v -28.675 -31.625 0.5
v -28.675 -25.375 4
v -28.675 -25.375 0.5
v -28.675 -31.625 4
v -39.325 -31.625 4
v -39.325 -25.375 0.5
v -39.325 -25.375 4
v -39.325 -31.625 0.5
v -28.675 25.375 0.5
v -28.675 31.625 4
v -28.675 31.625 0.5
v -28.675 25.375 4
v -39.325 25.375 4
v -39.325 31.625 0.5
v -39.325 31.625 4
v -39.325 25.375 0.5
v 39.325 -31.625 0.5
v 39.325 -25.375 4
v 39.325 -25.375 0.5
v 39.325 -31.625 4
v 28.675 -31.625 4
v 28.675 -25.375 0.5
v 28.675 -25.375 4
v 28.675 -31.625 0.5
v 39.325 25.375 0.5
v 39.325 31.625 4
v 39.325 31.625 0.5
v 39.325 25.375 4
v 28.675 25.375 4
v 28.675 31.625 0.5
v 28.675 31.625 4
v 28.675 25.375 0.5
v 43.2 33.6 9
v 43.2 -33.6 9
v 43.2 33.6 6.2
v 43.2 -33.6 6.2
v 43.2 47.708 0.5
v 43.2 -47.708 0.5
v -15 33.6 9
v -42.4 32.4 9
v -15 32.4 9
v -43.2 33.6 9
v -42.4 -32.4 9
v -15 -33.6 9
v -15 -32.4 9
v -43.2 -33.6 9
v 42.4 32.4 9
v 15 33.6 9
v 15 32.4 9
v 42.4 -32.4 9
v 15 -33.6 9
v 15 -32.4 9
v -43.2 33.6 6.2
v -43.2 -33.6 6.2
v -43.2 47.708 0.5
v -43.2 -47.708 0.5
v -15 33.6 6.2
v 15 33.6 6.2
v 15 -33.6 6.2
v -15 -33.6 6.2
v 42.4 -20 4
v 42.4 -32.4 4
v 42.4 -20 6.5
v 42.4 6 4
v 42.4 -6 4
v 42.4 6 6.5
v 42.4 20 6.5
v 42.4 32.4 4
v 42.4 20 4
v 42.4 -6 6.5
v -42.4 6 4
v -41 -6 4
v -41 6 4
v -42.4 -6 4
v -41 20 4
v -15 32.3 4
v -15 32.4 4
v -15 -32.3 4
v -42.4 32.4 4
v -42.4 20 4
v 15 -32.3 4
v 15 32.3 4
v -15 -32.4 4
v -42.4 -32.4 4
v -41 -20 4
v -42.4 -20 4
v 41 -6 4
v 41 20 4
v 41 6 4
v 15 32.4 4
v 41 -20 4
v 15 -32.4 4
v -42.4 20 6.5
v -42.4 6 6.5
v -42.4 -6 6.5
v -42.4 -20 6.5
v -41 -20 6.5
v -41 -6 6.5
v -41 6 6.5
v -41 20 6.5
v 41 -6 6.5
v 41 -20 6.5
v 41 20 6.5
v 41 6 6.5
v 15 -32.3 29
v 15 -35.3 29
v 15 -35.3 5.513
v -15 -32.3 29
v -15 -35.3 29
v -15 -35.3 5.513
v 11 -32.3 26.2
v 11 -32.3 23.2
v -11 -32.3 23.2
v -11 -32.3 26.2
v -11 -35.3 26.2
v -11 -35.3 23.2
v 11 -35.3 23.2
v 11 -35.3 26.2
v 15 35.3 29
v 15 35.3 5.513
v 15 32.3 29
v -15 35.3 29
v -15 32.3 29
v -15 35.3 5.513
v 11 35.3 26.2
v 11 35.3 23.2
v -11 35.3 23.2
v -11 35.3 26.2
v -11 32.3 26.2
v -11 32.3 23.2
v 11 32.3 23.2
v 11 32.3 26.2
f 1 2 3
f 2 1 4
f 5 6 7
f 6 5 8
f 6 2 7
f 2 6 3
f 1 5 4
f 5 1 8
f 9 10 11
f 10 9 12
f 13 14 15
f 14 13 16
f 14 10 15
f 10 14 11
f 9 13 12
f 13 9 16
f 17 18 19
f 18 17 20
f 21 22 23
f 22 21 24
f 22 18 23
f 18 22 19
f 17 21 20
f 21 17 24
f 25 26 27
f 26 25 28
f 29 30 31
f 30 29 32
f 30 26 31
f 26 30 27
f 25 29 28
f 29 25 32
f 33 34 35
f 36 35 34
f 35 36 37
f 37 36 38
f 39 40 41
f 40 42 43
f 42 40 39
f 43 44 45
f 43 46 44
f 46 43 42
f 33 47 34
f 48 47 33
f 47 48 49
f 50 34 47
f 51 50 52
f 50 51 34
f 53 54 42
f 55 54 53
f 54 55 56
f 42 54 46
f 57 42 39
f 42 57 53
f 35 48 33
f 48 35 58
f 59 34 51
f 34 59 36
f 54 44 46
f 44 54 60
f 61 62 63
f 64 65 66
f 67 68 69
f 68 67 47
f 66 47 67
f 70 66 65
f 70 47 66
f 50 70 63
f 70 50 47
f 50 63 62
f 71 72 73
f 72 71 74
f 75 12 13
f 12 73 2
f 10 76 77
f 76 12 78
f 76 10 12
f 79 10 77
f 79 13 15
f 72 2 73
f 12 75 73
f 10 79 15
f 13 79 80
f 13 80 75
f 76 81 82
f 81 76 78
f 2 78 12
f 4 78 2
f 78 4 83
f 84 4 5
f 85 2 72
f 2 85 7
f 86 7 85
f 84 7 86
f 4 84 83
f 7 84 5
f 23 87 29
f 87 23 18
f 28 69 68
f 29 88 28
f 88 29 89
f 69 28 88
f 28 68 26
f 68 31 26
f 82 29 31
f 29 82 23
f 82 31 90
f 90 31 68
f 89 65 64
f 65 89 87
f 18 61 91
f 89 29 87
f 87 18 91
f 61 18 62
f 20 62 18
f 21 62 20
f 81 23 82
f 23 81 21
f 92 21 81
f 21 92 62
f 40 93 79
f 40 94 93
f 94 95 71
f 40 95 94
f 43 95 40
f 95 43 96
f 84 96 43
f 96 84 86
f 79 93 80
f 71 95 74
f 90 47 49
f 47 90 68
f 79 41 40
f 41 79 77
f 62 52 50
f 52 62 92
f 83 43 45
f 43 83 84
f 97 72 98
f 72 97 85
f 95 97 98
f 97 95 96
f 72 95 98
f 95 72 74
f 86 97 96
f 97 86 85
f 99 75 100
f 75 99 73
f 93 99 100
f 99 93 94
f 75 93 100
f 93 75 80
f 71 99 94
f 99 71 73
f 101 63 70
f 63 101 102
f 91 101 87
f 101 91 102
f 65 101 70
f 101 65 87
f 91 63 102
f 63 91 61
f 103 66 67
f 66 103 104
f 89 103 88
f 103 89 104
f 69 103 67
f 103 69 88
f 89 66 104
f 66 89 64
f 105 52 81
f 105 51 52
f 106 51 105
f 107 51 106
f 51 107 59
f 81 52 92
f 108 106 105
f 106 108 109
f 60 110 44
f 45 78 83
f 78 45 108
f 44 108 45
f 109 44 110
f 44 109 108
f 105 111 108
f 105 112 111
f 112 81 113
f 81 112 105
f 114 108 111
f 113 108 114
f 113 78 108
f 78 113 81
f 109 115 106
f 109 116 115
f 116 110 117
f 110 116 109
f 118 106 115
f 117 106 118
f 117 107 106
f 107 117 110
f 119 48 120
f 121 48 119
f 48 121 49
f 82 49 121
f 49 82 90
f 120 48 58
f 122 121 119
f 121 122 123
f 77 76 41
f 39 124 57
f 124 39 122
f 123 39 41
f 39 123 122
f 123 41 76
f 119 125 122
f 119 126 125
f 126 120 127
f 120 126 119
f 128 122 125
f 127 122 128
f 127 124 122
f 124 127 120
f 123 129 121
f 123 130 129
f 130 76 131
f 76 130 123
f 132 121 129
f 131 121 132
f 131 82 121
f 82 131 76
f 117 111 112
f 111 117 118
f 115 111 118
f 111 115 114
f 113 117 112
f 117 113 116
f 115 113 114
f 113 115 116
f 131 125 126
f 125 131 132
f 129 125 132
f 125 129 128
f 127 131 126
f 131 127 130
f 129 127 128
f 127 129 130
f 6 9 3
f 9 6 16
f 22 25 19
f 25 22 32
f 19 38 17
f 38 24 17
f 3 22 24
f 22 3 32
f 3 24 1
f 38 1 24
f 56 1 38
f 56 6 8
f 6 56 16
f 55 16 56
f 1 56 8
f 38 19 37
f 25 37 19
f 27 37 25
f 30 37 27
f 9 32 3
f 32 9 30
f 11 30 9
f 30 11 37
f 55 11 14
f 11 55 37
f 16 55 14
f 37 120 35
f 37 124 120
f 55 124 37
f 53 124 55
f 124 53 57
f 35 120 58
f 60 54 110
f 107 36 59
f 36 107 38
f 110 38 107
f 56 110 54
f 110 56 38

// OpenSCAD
// file: soporte_tof.scad
vista = "pieza";

tof_largo = 25;
tof_cuerpo_largo = 16;
tof_ancho = 10.5;
tof_espesor = 5.5;
tof_pcb = 1.6;
tof_oreja_largo = (tof_largo - tof_cuerpo_largo) / 2;
tof_oreja_ancho = 6;
tof_oreja_alto = 6;
tof_sensor_largo = 5;
tof_sensor_ancho = 4;
tof_sensor_alto = 1.1;
tof_sensor_desde_borde = 6;
tof_oreja_tornillo_d = 2.2;

hueco_x = 10.5;
hueco_y = 5.7;
grosor_tapa = 2;
z_tapa_sup = 46.9;
tapa_ancho = 86.4;
tapa_largo = 67.2;
tapa_z0 = 40.15;

hol = 0.25;
pared_s = 0.8;
base_s = 1.6;
base_centro_largo = 16;
poste_ancho = 4.4;
poste_prof = 4;
tornillo_d = 2.2;
piloto_d = 1.7;
boss_d = 5.4;
boss_h = grosor_tapa;
cable_d = 3.4;

x_huecos = [-33, -6, 21];
y_frente = 27.89;
y_atras = -15.67;

// [x_hueco, y_hueco, dx, rumbo]: 0 = mira a +y, positivo = gira a la izquierda
// orden: AI, AC, AD, BI, BC, BD (cada cara es la otra girada 180 grados)
psi = 20;
soportes = [
	[x_huecos[0], y_frente, 0, psi],
	[x_huecos[1], y_frente, 0, 0],
	[x_huecos[2], y_frente, 0, -psi],
	[x_huecos[2], y_atras, 0, 180 + psi],
	[x_huecos[1], y_atras, 0, 180],
	[x_huecos[0], y_atras, 0, 180 - psi]
];

module tof_modelo() {
	x0 = (tof_largo - tof_cuerpo_largo) / 2;
	color([0.1, 0.35, 0.6]) {
		translate([x0, 0, 0])
			cube([tof_cuerpo_largo, tof_ancho, tof_pcb]);
		for (sx = [0, 1])
			difference() {
				translate([sx ? x0 + tof_cuerpo_largo : 0, (tof_ancho - tof_oreja_ancho) / 2, 0])
					cube([tof_oreja_largo, tof_oreja_ancho, tof_pcb]);
				translate([sx ? tof_largo - tof_oreja_largo / 2 : tof_oreja_largo / 2, tof_ancho / 2, -1])
					cylinder(d=tof_oreja_tornillo_d, h=tof_pcb + 2, $fn=24);
			}
	}
	color([0.15, 0.15, 0.15])
		translate([x0 + tof_sensor_desde_borde, (tof_ancho - tof_sensor_ancho) / 2, tof_pcb])
			cube([tof_sensor_largo, tof_sensor_ancho, tof_espesor - tof_pcb]);
}

module tof_en_pie() {
	rotate([90, 0, 180])
		translate([-tof_largo / 2, -tof_ancho / 2, -tof_espesor / 2])
			tof_modelo();
}

module soporte_tof(fijo = false) {
	T = tof_espesor + hol;
	y_poste = -T / 2;
	x_oreja = tof_cuerpo_largo / 2 + tof_oreja_largo / 2;
	z_tornillo = base_s + tof_ancho / 2;
	alto_poste = z_tornillo + poste_ancho / 2;
	x_poste = x_oreja + poste_ancho / 2;
	z_ini = fijo ? -0.1 : 0;

	difference() {
		union() {
			translate([-base_centro_largo / 2, y_poste, z_ini])
				cube([base_centro_largo, T, base_s - z_ini]);
			translate([-x_poste, y_poste - poste_prof, z_ini])
				cube([2 * x_poste, poste_prof, base_s - z_ini]);
			for (sx = [-1, 1])
				translate([sx * x_oreja - poste_ancho / 2, y_poste - poste_prof, 0])
					cube([poste_ancho, poste_prof, alto_poste]);
			if (!fijo)
				translate([0, 0, -boss_h])
					cylinder(d=boss_d, h=boss_h + base_s, $fn=48);
		}
		if (!fijo)
			translate([0, 0, -boss_h - 1])
				cylinder(d=cable_d, h=boss_h + base_s + 2, $fn=32);
		translate([-6, y_poste - 0.1, base_s - 0.8])
			cube([12, 3, 1]);
		for (sx = [-1, 1])
			translate([sx * x_oreja, y_poste + 1, z_tornillo])
				rotate([90, 0, 0])
					cylinder(d=piloto_d, h=poste_prof - 0.6 + 1, $fn=24);
	}
}

module soporte_colocado(s, fijo = false) {
	translate([s[0] + s[2], s[1], z_tapa_sup])
		rotate([0, 0, s[3]])
			soporte_tof(fijo);
}

module tof_colocado(s) {
	translate([s[0] + s[2], s[1], z_tapa_sup + base_s + tof_ancho / 2])
		rotate([0, 0, s[3]])
			tof_en_pie();
}

if (is_undef(ensamble) && vista == "pieza")
	soporte_tof(false);
// file: soporte_tof_2.scad
include <soporte_tof.scad>

vista = "ada_pieza";

ada_largo = 25.4;
ada_alto = 17.8;
ada_pcb = 1.6;
ada_comp = 2.9;
ada_agujero_d = 2.5;
ada_agujero_dx = 20.32;
ada_agujero_dz = 12.7;
ada_chip_x = 0;
ada_chip_z = 8.9;
ada_chip_ancho = 2.5;
ada_chip_alto = 4.9;
ada_chip_espesor = 1.56;
ada_conector_largo = 4.25;
ada_conector_alto = 6.9;
ada_piloto_d = 2.1;
ada_poste_ancho = 4.4;
ada_poste_prof = 4;
ada_ranura_ancho = 14;

idx_ada = 4;

module ada_modelo() {
	color([0.1, 0.35, 0.6])
		difference() {
			cube([ada_largo, ada_alto, ada_pcb]);
			for (sx = [-1, 1], sz = [-1, 1])
				translate([ada_largo / 2 + sx * ada_agujero_dx / 2, ada_alto / 2 + sz * ada_agujero_dz / 2, -1])
					cylinder(d=ada_agujero_d, h=ada_pcb + 2, $fn=24);
		}
	color([0.15, 0.15, 0.15])
		translate([ada_largo / 2 + ada_chip_x - ada_chip_ancho / 2, ada_chip_z - ada_chip_alto / 2, ada_pcb])
			cube([ada_chip_ancho, ada_chip_alto, ada_chip_espesor]);
	color([0.85, 0.85, 0.85])
		for (x = [0, ada_largo - ada_conector_largo])
			translate([x, (ada_alto - ada_conector_alto) / 2, ada_pcb])
				cube([ada_conector_largo, ada_conector_alto, ada_comp]);
}

function ada_y_placa() = boss_d / 2 + 0.3;

module ada_en_pie() {
	translate([0, ada_y_placa(), base_s + ada_alto / 2])
		rotate([90, 0, 180])
			translate([-ada_largo / 2, -ada_alto / 2, 0])
				ada_modelo();
}

module soporte_ada(fijo = false) {
	yb = ada_y_placa();
	yp = yb - 0.15;
	x_h = ada_agujero_dx / 2;
	z_h = [(ada_alto - ada_agujero_dz) / 2, (ada_alto + ada_agujero_dz) / 2];
	alto_poste = base_s + z_h[1] + ada_poste_ancho / 2;
	x_placa = x_h + ada_poste_ancho / 2 + 0.3;
	y_atras = yp - ada_poste_prof;
	y_frente = yb + ada_pcb + 0.8;
	z_ini = fijo ? -0.1 : 0;

	difference() {
		union() {
			translate([-x_placa, y_atras, z_ini])
				cube([2 * x_placa, y_frente - y_atras, base_s - z_ini]);
			for (sx = [-1, 1])
				translate([sx * x_h - ada_poste_ancho / 2, y_atras, 0])
					cube([ada_poste_ancho, ada_poste_prof, alto_poste]);
			if (!fijo)
				translate([0, 0, -boss_h])
					cylinder(d=boss_d, h=boss_h + base_s, $fn=48);
		}
		if (!fijo)
			translate([0, 0, -boss_h - 1])
				cylinder(d=cable_d, h=boss_h + base_s + 2, $fn=32);
		translate([-ada_ranura_ancho / 2, -0.5, base_s - 0.8])
			cube([ada_ranura_ancho, yb + 0.5, 1]);
		for (sx = [-1, 1], zh = z_h)
			translate([sx * x_h, yp + 1, base_s + zh])
				rotate([90, 0, 0])
					cylinder(d=ada_piloto_d, h=ada_poste_prof - 0.6 + 1, $fn=24);
	}
}

module ada_colocado(s, fijo = false) {
	translate([s[0] + s[2], s[1], z_tapa_sup])
		rotate([0, 0, s[3]])
			soporte_ada(fijo);
}

module ada_placa_colocada(s) {
	translate([s[0] + s[2], s[1], z_tapa_sup])
		rotate([0, 0, s[3]])
			ada_en_pie();
}

if (is_undef(ensamble) && vista == "ada_pieza")
	soporte_ada(false);
// main file
use <../carcasa-spinosaurus.scad>

base(84, 64, 0, 0, 5.5);
